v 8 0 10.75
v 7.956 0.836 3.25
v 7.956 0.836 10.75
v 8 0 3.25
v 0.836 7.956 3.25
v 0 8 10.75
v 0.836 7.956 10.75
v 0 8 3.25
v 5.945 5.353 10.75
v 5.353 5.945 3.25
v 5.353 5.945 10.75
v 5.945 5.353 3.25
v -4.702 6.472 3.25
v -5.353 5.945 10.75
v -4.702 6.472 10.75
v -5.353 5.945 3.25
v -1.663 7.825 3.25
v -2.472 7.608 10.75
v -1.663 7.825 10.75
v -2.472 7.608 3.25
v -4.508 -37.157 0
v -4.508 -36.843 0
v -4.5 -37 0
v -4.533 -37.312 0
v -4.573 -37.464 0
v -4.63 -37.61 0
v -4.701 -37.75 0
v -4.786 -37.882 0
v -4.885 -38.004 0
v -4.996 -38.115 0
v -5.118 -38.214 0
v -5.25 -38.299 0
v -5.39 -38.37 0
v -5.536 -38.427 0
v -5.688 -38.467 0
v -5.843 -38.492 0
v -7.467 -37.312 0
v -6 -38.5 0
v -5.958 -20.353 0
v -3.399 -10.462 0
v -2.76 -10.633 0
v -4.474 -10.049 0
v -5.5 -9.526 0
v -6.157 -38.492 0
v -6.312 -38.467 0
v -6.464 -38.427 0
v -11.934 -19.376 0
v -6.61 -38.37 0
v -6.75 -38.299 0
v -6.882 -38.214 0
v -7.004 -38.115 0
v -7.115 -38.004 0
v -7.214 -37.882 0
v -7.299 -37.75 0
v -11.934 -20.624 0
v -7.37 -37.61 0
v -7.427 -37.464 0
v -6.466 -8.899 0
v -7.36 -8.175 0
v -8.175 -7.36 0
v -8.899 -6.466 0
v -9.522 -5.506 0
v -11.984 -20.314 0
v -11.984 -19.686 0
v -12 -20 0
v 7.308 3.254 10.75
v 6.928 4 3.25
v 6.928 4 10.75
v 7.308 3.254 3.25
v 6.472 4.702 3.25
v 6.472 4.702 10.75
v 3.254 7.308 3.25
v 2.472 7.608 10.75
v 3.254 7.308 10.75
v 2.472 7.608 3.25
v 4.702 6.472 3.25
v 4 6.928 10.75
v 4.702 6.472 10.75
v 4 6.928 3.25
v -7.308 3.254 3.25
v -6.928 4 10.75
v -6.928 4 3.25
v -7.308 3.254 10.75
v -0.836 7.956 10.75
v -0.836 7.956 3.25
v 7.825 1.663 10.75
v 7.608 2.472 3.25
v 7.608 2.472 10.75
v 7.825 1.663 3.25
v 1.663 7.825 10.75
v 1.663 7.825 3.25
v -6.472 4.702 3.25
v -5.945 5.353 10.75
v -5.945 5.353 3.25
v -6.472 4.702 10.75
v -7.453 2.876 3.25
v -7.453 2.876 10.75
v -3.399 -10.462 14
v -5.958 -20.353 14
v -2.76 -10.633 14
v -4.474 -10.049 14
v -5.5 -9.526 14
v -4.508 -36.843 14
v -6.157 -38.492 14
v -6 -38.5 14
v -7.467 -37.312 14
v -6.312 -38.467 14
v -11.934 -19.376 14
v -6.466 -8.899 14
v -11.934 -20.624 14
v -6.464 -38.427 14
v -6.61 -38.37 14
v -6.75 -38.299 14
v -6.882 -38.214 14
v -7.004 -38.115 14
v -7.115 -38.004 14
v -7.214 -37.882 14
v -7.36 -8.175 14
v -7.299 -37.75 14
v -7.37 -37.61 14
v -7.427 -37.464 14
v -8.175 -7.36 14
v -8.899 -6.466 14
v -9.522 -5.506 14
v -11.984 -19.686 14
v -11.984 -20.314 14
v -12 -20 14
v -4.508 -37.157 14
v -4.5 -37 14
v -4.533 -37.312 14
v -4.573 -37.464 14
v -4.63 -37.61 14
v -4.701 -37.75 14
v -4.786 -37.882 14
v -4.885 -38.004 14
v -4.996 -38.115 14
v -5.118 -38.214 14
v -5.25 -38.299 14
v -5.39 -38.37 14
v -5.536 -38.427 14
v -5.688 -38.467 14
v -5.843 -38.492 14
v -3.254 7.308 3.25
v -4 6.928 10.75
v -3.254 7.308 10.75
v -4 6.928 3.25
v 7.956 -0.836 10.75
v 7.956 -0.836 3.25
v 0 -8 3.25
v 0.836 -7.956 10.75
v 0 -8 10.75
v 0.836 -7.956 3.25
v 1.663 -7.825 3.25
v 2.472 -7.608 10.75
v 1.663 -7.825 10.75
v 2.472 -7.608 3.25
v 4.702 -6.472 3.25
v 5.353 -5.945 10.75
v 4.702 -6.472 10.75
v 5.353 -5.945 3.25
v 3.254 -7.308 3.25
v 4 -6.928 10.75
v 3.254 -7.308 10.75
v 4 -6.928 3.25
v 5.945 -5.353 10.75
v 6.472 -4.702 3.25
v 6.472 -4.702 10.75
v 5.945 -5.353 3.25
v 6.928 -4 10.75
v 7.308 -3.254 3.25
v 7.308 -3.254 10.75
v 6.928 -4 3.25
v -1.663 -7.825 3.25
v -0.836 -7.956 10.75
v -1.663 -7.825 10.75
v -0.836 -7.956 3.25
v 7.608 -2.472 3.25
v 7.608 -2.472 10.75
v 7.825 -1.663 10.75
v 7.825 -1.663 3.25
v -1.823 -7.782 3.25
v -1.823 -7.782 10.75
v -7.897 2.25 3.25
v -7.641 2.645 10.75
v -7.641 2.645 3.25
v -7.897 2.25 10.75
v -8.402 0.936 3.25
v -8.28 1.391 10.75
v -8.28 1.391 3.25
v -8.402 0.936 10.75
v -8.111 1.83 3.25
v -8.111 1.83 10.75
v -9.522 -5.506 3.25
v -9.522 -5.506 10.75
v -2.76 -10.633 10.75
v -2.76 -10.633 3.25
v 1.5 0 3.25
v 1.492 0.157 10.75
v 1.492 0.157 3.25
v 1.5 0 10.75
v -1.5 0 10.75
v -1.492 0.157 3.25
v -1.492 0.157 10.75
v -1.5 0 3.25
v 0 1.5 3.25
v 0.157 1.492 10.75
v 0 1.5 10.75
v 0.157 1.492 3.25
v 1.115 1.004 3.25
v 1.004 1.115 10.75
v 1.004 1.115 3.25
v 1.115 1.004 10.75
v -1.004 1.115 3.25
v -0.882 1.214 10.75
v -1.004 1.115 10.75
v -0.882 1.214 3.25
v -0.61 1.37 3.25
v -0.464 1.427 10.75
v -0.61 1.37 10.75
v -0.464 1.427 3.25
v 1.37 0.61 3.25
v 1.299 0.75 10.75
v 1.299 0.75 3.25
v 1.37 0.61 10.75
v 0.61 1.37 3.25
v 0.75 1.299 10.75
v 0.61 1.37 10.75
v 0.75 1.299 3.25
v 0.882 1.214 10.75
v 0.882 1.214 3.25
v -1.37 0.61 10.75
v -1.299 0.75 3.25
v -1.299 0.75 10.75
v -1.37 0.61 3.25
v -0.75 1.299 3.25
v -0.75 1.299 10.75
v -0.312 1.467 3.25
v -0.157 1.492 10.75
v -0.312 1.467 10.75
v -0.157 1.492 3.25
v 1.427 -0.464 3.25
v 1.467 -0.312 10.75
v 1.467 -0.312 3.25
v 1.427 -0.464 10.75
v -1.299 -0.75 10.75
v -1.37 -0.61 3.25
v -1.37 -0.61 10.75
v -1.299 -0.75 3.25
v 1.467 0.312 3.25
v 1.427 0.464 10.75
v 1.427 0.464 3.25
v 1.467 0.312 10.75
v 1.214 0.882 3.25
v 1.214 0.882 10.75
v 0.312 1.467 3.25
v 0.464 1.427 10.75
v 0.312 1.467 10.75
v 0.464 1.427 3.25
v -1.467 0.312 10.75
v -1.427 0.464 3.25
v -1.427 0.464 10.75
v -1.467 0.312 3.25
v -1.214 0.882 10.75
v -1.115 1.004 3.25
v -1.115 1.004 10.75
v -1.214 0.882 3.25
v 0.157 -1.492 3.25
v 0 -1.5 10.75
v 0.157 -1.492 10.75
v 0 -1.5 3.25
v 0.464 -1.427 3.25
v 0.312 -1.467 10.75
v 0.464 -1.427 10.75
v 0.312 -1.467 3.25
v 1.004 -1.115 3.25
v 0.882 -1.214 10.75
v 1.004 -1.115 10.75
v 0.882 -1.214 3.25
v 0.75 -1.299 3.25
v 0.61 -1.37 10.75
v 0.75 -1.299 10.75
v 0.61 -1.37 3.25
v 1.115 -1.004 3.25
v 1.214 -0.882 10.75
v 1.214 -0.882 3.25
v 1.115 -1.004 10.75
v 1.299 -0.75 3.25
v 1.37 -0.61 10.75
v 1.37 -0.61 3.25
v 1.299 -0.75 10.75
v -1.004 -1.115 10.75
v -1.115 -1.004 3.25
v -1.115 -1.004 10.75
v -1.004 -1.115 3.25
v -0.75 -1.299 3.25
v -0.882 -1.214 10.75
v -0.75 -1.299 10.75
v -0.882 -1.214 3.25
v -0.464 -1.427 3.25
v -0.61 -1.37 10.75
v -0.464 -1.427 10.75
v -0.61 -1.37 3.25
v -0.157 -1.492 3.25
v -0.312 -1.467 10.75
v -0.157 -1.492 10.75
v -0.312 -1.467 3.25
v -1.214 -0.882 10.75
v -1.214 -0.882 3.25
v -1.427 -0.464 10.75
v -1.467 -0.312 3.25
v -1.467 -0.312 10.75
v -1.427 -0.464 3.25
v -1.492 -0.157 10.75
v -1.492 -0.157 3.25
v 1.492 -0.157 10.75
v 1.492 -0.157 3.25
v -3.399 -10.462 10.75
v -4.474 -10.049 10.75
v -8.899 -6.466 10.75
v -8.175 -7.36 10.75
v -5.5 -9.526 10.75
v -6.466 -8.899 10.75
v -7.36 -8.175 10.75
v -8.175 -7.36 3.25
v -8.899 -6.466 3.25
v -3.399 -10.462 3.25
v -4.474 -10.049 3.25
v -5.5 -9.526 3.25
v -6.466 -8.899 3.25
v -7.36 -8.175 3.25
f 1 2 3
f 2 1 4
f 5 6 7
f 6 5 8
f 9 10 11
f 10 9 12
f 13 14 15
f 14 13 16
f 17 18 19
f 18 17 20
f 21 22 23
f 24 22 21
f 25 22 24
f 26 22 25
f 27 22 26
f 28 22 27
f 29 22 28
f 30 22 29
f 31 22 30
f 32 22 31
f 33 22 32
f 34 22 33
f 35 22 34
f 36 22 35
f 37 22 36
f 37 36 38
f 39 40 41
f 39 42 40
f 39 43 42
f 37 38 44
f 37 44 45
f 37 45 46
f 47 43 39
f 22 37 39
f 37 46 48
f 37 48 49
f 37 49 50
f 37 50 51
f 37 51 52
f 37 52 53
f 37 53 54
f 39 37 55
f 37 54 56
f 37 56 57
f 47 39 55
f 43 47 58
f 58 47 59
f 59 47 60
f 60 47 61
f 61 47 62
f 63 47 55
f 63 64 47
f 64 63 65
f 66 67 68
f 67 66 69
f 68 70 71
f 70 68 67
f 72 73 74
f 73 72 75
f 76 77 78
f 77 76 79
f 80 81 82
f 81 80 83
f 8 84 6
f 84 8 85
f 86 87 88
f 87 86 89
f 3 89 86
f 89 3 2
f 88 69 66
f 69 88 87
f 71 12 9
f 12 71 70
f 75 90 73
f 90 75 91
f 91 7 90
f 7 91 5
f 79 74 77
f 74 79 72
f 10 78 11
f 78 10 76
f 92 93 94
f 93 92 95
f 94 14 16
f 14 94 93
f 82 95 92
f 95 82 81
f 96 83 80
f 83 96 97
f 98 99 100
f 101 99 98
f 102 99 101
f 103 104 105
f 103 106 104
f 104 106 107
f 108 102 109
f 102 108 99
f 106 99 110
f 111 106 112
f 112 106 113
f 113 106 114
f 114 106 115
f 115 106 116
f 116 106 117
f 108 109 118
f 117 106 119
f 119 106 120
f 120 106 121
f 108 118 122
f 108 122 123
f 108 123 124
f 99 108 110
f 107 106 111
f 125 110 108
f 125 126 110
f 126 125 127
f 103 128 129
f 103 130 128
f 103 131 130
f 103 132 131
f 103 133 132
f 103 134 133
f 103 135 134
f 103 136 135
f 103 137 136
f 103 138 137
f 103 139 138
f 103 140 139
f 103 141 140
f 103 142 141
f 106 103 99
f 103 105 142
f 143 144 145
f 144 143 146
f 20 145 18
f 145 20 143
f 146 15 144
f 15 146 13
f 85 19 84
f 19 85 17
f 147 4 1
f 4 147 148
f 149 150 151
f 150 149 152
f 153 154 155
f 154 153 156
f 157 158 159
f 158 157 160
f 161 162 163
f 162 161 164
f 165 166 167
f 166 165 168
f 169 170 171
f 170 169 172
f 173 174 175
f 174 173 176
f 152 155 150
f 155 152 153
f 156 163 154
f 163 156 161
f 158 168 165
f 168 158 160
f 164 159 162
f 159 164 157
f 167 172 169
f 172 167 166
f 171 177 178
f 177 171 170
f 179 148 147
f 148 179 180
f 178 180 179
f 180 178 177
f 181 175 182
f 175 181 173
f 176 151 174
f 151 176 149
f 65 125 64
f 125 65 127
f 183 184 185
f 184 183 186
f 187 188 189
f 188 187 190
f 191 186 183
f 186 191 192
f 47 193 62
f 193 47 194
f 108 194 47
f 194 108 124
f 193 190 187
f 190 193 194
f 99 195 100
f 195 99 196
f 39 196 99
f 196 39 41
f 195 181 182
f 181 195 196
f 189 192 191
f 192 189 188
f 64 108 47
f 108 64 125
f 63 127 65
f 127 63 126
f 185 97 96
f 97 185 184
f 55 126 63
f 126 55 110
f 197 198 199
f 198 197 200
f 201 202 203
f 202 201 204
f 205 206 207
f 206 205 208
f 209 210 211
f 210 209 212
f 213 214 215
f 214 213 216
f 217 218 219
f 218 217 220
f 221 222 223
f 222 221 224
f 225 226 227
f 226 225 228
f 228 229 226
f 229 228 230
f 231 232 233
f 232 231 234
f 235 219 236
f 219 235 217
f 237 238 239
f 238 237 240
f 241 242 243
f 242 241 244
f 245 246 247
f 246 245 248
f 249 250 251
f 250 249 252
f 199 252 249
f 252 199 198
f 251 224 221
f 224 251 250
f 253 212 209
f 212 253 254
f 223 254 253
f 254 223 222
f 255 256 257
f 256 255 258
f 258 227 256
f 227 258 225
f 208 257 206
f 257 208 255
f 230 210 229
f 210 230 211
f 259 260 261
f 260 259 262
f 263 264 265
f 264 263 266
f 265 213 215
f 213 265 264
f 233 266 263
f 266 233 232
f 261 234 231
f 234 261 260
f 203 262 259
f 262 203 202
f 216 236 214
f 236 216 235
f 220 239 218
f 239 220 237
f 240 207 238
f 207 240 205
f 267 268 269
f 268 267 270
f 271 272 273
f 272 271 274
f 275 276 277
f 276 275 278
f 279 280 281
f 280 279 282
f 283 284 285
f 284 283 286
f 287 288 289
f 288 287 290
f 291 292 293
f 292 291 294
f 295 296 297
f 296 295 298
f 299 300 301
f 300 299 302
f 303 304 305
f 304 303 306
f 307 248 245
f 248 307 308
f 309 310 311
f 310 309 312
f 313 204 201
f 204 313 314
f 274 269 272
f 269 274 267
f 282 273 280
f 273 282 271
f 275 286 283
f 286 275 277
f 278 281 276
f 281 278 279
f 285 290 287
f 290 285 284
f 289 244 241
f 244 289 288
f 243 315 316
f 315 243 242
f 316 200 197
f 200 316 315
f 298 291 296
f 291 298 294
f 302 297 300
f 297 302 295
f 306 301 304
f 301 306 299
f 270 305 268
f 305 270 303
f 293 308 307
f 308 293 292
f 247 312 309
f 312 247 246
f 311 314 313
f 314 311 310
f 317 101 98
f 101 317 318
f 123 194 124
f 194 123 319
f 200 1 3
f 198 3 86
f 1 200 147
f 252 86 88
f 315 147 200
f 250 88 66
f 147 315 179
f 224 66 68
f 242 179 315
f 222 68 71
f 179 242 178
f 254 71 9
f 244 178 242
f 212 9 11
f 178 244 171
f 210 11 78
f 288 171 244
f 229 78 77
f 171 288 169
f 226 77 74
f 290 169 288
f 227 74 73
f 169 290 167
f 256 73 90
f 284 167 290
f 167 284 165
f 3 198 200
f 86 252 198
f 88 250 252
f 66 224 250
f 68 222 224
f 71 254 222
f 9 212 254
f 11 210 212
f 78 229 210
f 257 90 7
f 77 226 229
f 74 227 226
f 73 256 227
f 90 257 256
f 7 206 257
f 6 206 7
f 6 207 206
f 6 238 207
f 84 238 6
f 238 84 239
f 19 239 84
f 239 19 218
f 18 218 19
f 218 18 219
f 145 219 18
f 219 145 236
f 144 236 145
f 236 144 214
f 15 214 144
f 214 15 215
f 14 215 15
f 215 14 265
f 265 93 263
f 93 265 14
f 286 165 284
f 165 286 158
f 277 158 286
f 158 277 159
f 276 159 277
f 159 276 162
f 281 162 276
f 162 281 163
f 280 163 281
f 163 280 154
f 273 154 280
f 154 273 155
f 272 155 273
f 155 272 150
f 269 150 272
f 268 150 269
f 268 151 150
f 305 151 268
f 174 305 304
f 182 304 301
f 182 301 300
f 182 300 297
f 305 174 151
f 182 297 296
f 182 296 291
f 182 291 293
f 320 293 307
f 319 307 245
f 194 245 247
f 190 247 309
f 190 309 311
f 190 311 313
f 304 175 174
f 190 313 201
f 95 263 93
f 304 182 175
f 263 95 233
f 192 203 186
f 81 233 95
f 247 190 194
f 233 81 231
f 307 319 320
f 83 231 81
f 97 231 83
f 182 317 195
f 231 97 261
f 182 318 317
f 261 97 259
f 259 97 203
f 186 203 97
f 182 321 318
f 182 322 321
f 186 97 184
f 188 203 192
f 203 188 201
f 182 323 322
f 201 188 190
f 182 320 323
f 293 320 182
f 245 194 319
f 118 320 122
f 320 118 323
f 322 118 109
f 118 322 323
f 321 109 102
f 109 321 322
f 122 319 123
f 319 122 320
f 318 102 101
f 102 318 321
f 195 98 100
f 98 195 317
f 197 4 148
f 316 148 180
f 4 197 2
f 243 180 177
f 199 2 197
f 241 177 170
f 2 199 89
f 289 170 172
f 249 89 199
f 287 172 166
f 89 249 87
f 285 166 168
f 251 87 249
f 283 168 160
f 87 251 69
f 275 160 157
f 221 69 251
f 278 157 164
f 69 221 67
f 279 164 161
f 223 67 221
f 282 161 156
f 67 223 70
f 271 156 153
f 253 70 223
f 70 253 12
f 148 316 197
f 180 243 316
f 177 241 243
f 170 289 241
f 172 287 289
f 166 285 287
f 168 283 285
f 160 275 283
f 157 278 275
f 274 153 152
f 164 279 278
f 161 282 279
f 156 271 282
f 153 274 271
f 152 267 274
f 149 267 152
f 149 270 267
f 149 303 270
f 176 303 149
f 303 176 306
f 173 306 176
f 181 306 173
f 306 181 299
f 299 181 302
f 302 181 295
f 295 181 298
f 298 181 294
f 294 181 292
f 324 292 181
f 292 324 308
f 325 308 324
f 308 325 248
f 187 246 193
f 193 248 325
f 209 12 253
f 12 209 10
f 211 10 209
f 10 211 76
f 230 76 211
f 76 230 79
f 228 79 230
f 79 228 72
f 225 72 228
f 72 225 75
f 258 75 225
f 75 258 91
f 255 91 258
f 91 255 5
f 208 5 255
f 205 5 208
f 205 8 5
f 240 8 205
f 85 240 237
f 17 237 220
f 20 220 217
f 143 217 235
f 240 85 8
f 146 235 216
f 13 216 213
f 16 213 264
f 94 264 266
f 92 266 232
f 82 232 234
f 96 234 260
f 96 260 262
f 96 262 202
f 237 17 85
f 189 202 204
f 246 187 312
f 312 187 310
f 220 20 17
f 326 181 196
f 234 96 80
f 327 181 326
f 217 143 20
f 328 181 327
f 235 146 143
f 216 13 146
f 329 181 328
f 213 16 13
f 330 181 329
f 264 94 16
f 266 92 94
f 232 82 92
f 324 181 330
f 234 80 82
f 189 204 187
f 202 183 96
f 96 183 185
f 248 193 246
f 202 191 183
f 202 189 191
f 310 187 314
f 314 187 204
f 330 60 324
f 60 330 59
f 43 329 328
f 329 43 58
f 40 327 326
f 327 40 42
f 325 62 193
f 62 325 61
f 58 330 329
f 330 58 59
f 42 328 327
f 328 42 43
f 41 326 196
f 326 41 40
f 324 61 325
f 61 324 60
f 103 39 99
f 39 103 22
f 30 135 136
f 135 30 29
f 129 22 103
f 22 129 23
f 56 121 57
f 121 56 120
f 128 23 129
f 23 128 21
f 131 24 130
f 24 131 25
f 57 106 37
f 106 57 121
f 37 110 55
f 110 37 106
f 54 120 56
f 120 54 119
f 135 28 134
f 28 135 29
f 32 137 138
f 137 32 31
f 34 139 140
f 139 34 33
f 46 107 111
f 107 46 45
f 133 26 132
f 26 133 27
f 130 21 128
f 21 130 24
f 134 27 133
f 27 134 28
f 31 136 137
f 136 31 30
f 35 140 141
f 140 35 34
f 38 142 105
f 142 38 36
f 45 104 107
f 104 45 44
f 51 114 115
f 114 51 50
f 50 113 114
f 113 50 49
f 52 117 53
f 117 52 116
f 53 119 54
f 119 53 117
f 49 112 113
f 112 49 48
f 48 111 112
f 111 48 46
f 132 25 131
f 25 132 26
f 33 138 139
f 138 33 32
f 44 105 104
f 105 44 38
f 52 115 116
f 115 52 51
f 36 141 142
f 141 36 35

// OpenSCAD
$fn=60;

difference(){
union(){
    
cylinder(d=16,h=14);

hull(){
translate([-4,0,0])cylinder(d=9,h=14);
translate([-9,-20,0])cylinder(d=6,h=14);
}
}
cylinder(d=3,h=22);
translate([0,0,10.75])cylinder(d=22,h=14);
cylinder(d=22,h=3.25);
}

hull(){
translate([-9,-20,0])cylinder(d=6,h=14);
translate([-6,-37,0])cylinder(d=3,h=14);
}
